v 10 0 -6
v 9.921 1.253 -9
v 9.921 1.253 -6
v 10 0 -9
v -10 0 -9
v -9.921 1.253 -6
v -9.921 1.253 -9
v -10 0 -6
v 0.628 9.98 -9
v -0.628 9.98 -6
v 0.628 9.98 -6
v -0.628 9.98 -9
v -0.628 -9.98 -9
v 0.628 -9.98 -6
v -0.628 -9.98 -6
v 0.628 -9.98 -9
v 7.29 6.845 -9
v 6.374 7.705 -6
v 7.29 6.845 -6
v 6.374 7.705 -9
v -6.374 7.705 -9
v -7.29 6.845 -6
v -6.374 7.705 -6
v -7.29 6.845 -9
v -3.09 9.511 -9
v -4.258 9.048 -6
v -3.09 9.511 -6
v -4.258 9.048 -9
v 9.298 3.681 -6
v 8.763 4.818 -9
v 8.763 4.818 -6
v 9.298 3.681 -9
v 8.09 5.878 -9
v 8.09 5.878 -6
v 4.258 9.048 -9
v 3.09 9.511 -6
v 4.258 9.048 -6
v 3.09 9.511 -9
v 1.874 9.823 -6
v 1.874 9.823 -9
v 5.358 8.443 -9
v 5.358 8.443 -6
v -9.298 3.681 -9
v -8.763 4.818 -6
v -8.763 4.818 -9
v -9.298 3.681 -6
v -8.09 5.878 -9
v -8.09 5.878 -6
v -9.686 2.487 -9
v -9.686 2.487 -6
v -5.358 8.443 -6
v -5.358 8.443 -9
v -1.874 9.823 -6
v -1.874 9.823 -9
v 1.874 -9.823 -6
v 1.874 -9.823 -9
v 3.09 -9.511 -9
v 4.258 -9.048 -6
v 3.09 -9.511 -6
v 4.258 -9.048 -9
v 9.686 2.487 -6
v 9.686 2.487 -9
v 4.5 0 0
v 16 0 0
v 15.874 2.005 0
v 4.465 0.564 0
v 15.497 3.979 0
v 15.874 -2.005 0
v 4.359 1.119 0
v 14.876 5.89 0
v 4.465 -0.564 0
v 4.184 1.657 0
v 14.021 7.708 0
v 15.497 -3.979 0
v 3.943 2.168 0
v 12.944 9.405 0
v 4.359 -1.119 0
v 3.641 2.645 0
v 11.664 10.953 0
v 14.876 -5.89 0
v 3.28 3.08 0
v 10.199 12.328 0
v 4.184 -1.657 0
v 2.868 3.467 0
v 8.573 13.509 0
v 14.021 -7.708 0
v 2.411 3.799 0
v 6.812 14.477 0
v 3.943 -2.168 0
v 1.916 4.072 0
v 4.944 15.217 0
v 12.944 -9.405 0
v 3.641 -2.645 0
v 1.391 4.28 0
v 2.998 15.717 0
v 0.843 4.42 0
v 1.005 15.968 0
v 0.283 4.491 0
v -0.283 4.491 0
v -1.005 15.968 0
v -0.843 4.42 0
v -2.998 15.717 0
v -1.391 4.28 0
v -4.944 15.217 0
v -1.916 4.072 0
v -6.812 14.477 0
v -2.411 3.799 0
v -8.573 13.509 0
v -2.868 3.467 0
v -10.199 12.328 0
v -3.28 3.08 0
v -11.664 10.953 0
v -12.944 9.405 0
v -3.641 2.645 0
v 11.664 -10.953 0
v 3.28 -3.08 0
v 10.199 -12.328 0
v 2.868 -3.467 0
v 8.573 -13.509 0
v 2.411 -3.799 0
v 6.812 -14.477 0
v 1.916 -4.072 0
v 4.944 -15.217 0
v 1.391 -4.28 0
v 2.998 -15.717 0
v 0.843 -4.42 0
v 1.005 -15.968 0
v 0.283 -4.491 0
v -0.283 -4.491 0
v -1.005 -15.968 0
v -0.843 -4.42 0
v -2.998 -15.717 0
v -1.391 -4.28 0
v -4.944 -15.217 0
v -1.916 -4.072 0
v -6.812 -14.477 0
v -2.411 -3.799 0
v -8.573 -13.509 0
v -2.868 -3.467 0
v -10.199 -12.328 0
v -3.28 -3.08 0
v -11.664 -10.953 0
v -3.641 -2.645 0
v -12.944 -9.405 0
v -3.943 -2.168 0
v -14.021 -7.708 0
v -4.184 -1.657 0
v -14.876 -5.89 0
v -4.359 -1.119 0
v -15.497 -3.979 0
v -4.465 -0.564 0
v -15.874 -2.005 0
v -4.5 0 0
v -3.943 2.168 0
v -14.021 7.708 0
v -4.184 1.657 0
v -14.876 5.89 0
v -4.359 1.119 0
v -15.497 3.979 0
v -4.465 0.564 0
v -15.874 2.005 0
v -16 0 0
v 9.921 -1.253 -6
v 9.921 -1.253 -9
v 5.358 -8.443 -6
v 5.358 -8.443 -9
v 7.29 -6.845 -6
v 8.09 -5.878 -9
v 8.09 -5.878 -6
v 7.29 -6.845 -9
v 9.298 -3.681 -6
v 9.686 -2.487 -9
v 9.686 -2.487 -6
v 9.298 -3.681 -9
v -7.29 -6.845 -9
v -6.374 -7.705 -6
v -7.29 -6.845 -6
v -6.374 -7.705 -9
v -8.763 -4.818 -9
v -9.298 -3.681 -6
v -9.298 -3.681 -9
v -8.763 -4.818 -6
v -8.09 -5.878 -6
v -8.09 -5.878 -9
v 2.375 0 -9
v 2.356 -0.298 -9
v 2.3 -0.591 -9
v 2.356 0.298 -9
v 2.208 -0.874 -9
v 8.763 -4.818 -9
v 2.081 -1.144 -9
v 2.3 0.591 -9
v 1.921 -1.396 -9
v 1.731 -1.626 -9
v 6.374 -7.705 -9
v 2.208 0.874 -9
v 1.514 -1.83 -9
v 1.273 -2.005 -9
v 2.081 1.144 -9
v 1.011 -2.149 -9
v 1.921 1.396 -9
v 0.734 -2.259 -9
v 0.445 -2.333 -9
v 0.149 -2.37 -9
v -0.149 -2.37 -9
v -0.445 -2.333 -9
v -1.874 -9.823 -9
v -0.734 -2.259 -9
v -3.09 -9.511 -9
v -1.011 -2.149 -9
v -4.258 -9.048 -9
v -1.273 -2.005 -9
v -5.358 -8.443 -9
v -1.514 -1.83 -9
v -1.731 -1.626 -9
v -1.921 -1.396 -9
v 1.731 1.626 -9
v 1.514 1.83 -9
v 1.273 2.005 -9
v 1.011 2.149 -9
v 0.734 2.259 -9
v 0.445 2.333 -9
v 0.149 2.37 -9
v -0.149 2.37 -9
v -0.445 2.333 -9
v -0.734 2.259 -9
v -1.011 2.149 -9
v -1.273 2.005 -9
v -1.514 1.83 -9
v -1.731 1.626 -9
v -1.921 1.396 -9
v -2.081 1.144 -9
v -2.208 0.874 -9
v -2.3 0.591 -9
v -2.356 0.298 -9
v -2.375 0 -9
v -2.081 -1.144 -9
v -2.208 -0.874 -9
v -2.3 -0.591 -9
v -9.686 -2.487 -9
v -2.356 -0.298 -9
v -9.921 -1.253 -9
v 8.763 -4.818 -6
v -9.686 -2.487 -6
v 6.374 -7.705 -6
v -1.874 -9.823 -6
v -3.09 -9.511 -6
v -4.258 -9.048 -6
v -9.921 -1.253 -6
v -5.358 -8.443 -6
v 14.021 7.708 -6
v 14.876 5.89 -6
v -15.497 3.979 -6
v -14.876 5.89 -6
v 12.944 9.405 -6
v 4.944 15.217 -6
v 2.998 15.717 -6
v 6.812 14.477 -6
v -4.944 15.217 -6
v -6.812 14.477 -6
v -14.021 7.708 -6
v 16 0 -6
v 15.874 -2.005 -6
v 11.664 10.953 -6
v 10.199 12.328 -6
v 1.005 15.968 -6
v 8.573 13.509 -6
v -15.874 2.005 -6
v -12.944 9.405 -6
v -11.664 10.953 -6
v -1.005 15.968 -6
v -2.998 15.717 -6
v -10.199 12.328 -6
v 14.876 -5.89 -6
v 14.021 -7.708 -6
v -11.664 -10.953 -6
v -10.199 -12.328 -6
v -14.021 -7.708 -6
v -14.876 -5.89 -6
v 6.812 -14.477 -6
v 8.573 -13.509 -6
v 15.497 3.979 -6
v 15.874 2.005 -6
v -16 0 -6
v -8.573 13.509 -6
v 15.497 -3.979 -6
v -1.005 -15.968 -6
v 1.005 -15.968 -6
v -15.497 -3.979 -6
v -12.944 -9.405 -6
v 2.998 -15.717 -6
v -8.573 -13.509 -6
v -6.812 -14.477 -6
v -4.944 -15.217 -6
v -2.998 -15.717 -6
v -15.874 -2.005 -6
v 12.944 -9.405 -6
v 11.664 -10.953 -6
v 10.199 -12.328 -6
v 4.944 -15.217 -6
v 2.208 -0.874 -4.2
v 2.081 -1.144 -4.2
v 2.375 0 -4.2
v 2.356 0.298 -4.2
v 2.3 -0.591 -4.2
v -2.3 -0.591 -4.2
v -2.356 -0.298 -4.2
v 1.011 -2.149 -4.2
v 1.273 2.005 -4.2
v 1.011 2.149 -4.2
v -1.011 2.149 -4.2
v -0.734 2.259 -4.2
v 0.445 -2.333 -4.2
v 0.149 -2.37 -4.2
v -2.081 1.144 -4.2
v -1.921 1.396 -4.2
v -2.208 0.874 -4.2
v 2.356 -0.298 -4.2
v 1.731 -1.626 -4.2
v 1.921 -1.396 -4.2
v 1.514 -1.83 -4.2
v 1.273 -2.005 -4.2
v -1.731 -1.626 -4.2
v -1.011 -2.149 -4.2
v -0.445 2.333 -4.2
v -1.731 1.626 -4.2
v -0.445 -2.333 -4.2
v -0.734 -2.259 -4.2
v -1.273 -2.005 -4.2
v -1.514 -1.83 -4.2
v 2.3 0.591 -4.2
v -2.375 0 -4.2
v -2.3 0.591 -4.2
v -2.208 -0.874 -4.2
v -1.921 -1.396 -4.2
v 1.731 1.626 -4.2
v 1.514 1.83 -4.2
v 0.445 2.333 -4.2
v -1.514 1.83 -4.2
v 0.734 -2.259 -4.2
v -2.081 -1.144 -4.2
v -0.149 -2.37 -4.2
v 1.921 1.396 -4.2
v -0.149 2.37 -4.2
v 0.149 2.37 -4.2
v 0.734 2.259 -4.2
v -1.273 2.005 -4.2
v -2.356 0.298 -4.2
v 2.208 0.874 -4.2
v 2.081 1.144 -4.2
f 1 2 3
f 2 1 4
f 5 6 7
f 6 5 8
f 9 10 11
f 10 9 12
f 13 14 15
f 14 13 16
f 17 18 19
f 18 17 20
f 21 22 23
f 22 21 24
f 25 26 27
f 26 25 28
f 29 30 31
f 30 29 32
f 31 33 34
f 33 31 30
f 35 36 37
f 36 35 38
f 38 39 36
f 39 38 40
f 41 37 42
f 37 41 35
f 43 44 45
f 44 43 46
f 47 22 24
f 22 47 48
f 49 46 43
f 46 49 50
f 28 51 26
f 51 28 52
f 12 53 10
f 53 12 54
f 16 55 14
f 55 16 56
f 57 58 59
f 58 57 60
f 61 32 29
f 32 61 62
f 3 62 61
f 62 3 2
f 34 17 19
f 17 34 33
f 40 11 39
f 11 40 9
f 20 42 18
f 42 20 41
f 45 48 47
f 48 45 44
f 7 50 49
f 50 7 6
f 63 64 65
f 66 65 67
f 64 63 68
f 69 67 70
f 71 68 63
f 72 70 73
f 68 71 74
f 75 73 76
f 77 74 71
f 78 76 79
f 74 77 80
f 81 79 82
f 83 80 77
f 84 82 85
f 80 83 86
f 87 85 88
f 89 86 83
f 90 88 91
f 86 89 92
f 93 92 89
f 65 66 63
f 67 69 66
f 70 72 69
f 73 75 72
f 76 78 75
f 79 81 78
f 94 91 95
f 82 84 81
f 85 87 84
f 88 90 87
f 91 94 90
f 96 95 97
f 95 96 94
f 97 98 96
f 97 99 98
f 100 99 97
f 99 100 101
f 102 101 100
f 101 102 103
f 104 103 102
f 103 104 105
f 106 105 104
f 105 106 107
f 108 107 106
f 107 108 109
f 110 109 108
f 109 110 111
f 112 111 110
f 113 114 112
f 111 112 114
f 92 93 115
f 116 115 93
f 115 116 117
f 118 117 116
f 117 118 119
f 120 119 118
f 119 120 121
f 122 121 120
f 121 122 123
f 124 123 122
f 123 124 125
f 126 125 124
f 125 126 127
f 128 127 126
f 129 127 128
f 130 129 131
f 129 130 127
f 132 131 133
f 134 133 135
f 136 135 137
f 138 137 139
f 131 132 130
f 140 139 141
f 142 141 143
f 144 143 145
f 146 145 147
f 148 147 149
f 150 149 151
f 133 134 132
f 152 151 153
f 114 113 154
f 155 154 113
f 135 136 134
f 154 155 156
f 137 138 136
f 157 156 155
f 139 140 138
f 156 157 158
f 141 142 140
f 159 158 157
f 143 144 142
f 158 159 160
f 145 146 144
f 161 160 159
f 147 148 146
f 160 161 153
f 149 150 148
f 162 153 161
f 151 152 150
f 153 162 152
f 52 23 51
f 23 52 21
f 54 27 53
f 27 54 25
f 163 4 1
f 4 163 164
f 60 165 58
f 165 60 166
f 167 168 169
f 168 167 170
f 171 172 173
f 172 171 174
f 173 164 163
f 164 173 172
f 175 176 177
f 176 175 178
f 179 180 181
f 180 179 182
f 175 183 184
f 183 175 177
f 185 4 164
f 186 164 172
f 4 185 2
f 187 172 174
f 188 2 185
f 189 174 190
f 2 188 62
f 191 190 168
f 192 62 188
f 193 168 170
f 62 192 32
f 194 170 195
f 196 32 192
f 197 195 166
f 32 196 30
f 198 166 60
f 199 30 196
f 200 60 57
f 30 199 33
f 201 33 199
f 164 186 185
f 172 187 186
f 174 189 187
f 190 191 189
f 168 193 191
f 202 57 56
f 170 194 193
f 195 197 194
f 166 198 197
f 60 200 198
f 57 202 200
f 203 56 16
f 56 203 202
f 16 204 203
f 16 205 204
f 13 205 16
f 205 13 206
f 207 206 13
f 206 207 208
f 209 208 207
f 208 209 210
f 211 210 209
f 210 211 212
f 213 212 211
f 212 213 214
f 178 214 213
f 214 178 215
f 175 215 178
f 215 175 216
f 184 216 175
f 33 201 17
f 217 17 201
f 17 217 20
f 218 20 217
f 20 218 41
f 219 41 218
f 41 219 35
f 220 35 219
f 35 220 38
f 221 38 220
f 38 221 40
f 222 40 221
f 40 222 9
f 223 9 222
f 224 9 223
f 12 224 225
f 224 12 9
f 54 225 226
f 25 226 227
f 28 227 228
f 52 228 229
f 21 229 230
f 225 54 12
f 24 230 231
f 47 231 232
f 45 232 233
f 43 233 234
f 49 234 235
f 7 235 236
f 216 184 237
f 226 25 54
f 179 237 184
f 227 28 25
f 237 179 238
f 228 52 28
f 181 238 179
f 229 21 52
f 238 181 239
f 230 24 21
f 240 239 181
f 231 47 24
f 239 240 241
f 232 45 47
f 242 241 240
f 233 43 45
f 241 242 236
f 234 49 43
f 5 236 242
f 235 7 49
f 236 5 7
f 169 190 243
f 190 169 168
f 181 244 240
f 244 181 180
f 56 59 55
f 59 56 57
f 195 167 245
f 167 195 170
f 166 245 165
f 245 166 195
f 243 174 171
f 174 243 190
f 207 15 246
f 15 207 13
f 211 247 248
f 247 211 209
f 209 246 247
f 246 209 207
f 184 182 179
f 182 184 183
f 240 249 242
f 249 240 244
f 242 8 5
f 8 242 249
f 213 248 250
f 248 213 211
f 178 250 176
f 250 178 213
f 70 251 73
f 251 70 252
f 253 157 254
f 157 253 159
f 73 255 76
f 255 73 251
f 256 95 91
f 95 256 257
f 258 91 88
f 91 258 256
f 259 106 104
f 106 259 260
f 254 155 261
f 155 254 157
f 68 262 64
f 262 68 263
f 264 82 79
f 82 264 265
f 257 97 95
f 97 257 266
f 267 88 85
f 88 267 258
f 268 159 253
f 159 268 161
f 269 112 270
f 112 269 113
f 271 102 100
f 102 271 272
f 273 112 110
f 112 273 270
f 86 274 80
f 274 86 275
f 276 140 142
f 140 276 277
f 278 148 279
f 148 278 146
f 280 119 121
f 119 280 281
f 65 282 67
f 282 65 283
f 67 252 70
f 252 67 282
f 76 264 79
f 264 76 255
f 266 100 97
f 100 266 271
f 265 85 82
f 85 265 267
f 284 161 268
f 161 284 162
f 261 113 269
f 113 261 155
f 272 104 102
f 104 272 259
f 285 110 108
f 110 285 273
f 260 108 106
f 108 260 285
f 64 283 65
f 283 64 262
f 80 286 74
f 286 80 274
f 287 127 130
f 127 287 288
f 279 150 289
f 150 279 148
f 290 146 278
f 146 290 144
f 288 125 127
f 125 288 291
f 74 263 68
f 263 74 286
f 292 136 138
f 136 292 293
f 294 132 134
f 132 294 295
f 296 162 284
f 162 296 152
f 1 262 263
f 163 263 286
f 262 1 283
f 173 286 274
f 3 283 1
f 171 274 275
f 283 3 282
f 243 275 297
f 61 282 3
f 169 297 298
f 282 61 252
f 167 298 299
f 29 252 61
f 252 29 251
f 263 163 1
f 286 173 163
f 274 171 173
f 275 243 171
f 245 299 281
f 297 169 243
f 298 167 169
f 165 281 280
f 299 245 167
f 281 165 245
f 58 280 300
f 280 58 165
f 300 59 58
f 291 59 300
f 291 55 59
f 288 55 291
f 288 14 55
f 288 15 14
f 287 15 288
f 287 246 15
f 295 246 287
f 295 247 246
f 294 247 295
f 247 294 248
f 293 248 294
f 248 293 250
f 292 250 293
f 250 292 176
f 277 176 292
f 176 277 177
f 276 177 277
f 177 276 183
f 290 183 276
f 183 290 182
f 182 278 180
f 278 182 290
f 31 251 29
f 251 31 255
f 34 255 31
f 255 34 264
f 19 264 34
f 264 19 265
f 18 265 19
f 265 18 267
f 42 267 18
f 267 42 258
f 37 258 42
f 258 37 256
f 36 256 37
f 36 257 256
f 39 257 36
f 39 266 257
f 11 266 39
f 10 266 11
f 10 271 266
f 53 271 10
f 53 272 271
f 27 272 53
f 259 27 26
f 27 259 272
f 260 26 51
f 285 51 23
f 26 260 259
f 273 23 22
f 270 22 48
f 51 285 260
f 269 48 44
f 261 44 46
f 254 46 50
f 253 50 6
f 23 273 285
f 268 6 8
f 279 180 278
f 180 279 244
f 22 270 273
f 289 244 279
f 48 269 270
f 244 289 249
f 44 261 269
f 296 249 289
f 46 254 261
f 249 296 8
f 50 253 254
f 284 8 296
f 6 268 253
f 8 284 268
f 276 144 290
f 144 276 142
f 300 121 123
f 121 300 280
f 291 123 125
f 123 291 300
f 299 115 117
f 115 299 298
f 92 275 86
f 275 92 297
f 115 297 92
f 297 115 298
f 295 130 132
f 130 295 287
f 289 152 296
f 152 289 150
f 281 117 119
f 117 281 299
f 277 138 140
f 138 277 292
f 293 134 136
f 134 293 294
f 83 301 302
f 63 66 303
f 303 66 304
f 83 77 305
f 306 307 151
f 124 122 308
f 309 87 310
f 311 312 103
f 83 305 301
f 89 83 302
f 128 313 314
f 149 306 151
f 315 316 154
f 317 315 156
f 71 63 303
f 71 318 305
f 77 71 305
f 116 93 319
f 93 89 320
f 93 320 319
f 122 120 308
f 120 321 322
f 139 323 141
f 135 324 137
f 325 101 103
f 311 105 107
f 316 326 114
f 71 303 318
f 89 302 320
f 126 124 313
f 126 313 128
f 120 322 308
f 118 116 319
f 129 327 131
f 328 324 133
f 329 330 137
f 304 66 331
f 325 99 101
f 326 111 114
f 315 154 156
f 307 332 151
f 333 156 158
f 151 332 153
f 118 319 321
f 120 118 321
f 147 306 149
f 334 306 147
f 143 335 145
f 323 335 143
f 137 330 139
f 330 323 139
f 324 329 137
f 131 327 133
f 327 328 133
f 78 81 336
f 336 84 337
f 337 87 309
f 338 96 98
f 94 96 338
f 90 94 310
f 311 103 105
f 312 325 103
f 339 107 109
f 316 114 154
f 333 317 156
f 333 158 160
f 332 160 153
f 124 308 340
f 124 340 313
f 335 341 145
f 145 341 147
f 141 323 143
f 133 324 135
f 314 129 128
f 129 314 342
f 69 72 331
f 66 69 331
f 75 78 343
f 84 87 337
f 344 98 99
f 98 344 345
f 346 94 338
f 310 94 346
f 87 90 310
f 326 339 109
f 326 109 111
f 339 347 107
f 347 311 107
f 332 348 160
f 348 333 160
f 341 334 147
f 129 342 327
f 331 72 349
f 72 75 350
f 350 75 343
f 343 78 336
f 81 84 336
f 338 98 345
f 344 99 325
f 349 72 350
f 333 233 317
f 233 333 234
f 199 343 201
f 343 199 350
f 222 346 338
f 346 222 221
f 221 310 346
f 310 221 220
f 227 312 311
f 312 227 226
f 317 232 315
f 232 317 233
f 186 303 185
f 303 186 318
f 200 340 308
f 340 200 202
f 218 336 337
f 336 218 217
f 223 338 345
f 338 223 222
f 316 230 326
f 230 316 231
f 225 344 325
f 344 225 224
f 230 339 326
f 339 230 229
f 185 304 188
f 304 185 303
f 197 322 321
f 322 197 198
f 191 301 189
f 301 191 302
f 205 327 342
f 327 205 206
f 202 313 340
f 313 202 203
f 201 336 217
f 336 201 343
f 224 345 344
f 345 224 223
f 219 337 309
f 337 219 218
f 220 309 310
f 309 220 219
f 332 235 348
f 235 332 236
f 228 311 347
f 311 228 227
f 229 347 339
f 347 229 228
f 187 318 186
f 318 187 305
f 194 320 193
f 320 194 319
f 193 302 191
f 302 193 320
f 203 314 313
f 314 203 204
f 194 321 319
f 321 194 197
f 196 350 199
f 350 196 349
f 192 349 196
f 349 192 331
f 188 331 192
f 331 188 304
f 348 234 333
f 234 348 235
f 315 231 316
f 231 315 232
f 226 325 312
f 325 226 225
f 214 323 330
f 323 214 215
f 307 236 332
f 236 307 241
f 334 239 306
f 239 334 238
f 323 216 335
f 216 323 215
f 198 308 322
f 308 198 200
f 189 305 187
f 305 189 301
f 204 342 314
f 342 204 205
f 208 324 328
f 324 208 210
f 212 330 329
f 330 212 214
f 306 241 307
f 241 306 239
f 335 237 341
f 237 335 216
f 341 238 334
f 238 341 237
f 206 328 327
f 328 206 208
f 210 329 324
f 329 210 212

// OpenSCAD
$fn = 50;


difference() {
	union() {
		translate(v = [0, 0, -9.0000000000]) {
			cylinder(h = 9, r = 10.0000000000);
		}
		translate(v = [0, 0, -6.0000000000]) {
			cylinder(h = 6, r = 16.0000000000);
		}
	}
	union() {
		translate(v = [0, 0, 0]) {
			rotate(a = [0, 0, 0]) {
				difference() {
					union() {
						#translate(v = [0, 0, -9.0000000000]) {
							cylinder(h = 9, r = 2.2500000000);
						}
						#translate(v = [0, 0, -4.2000000000]) {
							cylinder(h = 4.2000000000, r1 = 2.3750000000, r2 = 4.5000000000);
						}
						#translate(v = [0, 0, -9.0000000000]) {
							cylinder(h = 9, r = 2.3750000000);
						}
						#translate(v = [0, 0, -9.0000000000]) {
							cylinder(h = 9, r = 2.2500000000);
						}
					}
					union();
				}
			}
		}
	}
}
